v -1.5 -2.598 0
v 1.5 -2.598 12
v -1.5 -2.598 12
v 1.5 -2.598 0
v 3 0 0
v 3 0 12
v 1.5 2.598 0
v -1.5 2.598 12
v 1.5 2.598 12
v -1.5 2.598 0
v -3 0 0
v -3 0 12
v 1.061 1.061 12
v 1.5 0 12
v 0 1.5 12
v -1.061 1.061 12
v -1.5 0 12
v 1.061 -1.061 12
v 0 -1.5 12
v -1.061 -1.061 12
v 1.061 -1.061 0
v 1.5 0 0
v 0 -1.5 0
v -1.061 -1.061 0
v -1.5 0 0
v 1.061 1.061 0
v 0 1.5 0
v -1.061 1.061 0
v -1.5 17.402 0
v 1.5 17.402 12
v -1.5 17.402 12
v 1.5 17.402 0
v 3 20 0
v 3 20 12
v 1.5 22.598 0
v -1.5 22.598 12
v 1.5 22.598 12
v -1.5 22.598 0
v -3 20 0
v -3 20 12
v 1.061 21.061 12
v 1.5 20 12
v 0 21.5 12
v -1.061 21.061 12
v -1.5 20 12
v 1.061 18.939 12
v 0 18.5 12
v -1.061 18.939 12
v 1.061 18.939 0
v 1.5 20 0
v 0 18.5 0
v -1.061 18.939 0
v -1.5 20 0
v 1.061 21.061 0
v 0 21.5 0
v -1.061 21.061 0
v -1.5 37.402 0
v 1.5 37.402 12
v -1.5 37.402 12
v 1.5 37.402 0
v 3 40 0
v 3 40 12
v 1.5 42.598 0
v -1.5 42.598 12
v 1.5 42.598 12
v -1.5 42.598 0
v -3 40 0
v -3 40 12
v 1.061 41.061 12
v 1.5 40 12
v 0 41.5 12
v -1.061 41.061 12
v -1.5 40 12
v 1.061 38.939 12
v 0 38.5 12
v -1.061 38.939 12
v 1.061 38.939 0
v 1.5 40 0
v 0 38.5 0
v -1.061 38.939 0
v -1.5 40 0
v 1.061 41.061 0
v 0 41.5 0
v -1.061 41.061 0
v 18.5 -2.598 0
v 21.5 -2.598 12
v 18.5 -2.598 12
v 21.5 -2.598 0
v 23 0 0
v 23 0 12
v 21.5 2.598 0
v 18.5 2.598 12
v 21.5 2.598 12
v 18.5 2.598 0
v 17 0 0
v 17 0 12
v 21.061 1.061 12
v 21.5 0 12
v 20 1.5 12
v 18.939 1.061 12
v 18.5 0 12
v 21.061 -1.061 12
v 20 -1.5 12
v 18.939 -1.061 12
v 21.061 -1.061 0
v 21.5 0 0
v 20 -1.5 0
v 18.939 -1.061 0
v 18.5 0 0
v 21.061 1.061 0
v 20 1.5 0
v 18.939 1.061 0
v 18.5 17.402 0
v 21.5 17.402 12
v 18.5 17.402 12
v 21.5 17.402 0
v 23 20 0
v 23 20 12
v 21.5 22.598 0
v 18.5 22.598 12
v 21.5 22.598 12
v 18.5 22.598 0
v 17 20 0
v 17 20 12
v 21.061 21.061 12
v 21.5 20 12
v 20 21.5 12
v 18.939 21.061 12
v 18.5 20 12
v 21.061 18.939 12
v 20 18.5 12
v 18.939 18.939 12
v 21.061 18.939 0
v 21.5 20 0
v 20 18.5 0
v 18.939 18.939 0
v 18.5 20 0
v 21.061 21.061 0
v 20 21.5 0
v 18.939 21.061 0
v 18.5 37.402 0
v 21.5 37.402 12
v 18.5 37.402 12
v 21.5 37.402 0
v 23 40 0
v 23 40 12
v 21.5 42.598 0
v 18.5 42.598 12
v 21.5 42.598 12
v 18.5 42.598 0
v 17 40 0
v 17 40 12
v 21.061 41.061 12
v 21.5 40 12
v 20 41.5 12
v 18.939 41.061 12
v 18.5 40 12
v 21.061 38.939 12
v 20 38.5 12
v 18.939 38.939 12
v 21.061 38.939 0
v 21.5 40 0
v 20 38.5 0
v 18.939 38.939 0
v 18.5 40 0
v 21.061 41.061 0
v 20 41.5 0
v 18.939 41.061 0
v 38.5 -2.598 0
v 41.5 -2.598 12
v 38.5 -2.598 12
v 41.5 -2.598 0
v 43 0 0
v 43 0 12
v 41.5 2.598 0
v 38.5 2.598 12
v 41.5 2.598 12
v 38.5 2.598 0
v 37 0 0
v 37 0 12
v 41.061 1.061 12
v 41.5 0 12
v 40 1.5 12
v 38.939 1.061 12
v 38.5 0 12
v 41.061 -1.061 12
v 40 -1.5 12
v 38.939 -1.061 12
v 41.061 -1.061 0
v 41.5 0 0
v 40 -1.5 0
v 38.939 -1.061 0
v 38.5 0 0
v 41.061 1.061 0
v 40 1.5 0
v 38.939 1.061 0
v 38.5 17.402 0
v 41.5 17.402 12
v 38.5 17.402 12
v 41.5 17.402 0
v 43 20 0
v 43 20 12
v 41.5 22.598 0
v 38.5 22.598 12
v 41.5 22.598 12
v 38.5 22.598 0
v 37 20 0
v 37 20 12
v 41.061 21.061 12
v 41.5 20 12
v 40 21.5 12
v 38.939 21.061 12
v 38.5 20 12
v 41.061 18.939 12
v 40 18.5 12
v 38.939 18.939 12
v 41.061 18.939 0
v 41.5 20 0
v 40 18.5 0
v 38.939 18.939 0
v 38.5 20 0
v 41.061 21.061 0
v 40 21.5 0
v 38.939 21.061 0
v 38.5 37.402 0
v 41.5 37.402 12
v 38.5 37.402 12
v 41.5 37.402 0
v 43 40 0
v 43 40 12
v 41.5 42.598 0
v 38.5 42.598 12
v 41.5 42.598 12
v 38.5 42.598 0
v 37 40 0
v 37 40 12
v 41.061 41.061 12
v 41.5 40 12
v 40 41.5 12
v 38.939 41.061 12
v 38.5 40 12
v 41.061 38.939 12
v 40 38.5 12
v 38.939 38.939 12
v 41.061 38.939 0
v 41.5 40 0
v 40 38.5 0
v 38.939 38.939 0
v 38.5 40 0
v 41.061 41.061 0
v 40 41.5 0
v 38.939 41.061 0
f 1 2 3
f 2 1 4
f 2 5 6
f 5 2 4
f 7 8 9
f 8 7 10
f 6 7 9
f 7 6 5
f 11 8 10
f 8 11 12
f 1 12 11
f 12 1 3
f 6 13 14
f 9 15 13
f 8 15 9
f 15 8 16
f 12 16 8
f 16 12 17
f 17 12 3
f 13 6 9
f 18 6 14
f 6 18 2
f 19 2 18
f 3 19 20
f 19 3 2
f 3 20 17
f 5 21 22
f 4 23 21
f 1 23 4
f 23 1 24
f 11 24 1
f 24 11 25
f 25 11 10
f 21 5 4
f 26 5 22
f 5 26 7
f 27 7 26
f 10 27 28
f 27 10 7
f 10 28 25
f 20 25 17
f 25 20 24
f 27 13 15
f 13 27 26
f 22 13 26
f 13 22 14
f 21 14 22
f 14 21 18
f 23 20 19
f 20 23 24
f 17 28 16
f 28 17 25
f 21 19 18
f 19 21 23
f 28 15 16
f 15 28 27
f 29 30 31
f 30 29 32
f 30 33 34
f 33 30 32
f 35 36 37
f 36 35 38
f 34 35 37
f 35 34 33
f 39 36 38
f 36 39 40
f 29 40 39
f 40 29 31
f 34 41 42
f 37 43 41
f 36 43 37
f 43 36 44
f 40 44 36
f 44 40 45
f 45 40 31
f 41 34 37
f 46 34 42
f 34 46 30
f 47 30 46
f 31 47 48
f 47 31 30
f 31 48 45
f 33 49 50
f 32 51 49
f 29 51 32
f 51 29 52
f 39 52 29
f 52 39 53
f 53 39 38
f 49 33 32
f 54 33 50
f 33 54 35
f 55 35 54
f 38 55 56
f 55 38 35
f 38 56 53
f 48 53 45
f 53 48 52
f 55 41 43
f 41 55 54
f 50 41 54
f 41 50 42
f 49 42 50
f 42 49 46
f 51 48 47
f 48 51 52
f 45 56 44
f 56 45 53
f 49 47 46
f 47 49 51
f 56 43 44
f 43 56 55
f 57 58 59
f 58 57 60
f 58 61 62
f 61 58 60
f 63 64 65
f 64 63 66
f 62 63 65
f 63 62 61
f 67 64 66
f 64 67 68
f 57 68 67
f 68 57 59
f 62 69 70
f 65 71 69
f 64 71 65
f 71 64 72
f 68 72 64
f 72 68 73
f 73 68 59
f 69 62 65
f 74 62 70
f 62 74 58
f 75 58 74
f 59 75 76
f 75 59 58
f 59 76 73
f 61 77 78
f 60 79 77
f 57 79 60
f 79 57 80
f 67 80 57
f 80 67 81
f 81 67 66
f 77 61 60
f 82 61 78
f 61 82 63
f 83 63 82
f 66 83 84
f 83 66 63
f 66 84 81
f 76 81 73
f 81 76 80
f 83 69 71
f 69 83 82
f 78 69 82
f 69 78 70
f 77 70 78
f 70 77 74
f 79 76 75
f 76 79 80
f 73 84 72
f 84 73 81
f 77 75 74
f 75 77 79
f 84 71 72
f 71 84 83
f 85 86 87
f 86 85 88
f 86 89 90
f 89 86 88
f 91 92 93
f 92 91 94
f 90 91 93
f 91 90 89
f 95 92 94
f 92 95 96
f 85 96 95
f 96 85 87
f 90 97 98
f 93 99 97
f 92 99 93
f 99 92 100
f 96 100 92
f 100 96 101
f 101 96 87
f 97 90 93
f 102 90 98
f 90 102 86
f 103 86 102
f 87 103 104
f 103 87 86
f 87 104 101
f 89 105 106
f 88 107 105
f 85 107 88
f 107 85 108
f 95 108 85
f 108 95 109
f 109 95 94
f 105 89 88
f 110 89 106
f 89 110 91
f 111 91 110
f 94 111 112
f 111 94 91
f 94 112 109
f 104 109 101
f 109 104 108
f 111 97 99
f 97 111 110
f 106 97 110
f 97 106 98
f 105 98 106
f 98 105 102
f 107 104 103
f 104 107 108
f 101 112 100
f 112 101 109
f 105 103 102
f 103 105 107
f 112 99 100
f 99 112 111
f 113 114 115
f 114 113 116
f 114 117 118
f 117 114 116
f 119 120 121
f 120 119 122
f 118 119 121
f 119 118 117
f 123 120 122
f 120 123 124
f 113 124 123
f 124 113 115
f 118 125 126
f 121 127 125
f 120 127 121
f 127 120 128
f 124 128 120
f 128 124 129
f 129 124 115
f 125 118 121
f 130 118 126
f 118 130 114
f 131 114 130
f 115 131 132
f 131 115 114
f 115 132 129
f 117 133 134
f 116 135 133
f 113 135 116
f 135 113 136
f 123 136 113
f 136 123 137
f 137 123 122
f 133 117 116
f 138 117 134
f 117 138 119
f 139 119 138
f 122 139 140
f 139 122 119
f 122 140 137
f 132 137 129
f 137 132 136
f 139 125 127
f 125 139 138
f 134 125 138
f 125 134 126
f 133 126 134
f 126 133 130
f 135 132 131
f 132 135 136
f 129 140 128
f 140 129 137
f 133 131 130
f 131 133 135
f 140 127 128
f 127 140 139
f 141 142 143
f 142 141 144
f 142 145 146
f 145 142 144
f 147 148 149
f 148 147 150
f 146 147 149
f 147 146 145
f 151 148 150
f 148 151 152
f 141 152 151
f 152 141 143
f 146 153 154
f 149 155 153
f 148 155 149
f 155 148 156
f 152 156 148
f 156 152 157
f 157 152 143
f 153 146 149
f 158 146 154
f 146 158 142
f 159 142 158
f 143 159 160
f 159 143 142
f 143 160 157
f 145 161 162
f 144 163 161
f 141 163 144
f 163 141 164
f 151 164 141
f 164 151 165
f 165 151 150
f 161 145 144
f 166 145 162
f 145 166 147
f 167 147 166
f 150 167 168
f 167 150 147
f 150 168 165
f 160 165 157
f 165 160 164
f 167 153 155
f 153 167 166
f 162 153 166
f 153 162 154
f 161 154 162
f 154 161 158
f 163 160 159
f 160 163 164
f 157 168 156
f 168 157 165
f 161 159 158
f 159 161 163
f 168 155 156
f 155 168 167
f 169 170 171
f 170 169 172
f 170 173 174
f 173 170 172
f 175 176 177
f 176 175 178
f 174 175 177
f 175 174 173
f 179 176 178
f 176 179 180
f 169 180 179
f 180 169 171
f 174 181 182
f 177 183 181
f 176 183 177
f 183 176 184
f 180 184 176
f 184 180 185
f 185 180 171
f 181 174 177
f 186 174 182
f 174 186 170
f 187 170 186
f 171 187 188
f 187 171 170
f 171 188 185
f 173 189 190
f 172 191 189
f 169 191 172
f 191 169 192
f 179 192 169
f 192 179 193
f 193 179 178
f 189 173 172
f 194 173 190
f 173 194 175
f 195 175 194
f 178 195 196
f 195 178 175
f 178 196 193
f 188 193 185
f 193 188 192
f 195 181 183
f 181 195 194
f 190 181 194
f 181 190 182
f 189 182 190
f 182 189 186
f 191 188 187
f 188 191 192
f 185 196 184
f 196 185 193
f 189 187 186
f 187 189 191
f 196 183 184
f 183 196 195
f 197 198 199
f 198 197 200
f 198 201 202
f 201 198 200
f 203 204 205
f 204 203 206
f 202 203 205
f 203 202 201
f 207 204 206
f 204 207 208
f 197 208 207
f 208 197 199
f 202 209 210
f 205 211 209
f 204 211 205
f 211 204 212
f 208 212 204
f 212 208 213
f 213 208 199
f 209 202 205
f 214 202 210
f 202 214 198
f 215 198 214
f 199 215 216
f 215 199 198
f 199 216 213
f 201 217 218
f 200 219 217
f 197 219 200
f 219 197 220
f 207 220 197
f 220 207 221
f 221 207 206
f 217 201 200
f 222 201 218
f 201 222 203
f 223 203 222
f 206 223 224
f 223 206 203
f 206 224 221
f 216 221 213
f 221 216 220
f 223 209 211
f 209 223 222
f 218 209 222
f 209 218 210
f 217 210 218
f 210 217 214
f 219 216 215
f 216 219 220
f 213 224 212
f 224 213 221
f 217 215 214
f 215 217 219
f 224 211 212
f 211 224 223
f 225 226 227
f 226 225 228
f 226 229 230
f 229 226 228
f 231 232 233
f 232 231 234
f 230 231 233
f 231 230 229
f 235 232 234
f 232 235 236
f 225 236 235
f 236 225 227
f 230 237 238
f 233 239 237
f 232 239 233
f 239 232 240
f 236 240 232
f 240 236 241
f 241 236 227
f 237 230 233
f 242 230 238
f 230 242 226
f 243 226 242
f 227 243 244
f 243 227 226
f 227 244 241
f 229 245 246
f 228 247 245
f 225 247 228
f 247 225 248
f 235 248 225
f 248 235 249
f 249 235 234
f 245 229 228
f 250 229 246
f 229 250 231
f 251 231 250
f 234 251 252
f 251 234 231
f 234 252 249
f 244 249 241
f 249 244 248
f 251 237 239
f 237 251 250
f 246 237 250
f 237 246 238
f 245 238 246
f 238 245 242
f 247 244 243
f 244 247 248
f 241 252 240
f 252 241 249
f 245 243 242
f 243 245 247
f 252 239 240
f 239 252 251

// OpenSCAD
for(i =[0:2]) {
    for (j =[0:2])
        translate([i*20, j*20, 0])
        spacer();
} 
    
module spacer(){
    difference(){
        cylinder(12, 3, 3, $fn=6);
        translate([0,0,-1])
        cylinder(14, 1.5, 1.5, $fn=8);
    }
}
